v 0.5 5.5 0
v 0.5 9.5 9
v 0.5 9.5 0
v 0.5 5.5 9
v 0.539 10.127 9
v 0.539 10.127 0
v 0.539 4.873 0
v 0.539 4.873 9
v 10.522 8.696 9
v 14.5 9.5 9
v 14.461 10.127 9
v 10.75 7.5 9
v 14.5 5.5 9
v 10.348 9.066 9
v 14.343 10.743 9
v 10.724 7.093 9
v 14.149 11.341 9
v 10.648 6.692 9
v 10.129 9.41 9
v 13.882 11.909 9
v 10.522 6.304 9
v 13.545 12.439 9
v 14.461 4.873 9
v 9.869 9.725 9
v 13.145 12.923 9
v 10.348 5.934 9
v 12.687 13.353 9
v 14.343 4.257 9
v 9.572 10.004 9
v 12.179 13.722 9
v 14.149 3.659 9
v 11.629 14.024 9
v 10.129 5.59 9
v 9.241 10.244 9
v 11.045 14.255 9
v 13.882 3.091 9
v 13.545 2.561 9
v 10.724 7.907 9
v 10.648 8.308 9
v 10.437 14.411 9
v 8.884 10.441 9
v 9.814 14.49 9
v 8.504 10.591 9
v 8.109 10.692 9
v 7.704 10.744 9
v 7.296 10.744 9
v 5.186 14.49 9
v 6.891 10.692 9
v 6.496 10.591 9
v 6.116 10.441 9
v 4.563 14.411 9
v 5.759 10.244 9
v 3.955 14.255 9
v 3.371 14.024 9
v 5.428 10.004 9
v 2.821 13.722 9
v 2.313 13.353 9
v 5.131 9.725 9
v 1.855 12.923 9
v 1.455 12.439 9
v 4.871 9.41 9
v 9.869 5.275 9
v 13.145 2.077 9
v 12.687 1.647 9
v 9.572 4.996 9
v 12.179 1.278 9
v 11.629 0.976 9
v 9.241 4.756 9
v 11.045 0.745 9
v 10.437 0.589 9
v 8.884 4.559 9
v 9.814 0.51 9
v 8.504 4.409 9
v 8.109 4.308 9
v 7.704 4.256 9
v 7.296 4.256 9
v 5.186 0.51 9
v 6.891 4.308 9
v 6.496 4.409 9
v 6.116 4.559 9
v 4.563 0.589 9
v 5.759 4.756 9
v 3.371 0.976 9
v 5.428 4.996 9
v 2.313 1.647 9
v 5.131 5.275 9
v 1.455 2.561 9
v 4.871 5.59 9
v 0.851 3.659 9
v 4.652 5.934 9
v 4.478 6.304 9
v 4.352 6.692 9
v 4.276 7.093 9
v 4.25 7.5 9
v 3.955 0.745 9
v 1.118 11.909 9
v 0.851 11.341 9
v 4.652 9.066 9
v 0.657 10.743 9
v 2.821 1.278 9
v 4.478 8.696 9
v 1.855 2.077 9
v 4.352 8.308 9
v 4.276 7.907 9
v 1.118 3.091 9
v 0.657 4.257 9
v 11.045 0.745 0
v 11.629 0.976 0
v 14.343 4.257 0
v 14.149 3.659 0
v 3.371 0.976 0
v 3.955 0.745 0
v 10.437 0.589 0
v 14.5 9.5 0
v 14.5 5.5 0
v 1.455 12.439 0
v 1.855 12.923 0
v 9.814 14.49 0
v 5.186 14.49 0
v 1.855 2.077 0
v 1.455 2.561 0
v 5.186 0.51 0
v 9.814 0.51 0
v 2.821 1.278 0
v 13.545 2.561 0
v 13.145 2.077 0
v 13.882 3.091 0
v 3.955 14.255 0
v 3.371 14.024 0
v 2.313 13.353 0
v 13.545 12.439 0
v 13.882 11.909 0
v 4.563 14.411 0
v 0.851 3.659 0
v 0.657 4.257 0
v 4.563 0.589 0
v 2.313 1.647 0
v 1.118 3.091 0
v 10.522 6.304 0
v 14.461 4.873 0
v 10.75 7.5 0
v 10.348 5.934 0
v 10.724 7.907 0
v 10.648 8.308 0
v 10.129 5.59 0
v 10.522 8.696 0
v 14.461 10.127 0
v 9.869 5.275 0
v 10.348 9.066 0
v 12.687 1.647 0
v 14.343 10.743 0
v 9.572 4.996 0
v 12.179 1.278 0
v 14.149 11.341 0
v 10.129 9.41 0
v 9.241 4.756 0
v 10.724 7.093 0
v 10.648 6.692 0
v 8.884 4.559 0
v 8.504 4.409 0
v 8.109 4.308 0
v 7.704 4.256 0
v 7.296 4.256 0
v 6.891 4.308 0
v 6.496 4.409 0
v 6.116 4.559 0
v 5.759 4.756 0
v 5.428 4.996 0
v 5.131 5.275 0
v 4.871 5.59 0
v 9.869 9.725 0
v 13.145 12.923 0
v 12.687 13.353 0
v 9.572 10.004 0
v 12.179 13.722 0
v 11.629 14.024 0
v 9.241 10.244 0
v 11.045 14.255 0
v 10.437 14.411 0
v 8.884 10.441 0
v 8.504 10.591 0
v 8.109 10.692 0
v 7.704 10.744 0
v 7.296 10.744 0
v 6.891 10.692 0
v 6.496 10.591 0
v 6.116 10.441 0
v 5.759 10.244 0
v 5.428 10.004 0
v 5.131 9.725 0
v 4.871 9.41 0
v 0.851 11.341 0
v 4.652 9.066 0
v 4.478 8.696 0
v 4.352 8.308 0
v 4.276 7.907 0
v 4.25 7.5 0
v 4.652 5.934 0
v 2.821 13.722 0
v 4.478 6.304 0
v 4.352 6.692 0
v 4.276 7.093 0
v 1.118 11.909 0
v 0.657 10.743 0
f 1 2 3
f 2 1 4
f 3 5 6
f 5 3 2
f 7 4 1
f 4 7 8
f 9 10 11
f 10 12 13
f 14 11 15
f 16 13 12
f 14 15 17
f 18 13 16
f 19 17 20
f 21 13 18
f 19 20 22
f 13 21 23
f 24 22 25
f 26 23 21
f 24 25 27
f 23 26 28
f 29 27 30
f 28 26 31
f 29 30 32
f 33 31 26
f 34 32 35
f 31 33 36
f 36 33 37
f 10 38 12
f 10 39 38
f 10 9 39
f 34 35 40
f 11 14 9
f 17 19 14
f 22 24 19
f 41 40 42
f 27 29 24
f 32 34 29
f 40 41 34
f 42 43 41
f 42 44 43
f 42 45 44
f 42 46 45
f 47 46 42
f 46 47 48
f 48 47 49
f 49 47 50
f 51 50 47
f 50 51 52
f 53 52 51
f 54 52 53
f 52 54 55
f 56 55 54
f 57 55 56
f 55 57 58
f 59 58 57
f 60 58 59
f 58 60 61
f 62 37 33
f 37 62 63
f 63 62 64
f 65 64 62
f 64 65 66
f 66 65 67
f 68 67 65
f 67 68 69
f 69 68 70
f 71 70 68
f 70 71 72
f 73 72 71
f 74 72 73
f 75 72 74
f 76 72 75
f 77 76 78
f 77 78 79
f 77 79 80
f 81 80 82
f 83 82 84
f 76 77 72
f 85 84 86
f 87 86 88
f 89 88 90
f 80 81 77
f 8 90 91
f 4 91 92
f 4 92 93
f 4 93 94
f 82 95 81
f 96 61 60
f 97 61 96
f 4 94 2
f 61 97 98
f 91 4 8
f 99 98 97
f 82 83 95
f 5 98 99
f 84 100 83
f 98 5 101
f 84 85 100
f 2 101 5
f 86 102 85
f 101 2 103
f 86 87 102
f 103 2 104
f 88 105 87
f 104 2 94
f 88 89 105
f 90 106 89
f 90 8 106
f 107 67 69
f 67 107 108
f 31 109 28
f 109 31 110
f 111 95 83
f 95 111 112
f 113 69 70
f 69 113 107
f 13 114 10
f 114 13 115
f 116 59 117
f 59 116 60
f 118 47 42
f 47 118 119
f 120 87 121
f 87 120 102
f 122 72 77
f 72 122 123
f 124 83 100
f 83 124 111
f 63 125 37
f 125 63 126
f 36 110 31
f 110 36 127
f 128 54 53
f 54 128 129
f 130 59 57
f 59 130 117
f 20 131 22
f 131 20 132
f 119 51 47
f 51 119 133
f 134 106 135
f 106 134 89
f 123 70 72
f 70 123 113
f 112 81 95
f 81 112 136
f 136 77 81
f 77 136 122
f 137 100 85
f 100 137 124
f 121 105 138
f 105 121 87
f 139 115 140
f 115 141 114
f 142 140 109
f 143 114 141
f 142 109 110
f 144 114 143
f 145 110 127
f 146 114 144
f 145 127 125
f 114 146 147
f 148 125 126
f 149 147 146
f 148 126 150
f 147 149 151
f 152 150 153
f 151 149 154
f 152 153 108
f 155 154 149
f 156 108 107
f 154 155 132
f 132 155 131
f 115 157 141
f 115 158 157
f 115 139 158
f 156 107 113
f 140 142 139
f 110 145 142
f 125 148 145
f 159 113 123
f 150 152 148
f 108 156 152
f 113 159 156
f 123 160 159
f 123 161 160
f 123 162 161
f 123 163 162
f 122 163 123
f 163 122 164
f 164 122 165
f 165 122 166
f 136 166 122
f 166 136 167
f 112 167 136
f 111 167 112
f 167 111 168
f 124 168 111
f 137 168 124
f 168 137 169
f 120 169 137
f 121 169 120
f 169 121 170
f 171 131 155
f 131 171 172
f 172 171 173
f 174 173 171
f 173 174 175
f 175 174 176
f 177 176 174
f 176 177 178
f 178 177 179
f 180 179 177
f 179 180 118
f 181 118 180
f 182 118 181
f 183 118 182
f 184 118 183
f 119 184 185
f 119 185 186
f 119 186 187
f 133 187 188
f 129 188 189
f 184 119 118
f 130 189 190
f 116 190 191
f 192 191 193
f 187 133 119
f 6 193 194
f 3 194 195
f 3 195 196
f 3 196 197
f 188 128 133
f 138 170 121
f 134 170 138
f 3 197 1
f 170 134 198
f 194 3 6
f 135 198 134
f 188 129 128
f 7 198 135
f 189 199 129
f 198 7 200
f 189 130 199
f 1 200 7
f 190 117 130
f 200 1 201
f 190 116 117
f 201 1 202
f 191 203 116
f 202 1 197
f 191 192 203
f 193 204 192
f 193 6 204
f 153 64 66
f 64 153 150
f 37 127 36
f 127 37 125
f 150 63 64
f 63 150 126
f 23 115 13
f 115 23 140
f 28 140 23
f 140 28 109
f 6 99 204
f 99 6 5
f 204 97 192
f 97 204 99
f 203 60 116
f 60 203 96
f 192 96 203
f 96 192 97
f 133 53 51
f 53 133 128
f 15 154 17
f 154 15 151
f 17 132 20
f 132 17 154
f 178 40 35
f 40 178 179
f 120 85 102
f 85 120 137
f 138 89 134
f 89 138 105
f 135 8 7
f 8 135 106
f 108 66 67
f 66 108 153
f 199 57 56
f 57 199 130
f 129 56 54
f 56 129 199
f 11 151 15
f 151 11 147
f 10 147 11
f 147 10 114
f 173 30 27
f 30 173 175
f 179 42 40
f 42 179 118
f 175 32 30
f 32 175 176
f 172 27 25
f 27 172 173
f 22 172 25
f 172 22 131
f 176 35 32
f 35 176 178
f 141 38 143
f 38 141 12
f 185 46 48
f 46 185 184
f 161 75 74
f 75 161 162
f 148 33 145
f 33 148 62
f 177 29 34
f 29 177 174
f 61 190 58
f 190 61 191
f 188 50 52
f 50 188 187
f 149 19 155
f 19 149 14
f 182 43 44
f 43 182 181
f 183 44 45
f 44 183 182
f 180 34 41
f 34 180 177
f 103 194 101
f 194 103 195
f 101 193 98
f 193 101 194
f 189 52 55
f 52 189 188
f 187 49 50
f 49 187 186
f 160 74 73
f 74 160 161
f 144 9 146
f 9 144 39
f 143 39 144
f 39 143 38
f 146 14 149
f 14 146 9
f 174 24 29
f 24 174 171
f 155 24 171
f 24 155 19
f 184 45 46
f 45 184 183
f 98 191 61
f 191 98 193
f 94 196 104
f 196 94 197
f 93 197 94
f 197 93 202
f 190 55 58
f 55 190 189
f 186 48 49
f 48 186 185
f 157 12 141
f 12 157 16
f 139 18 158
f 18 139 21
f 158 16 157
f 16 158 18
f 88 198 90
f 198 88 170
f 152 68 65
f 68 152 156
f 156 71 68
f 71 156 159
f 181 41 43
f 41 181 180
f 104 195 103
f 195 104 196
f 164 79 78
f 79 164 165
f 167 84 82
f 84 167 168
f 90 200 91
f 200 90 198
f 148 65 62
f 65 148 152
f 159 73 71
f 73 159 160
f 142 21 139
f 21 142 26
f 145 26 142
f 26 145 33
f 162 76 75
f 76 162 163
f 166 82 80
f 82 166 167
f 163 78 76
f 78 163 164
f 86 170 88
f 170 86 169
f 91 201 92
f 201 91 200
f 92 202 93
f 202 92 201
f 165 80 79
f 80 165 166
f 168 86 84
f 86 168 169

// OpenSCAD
// Generated by SolidPython 1.1.3 on 2023-01-30 14:07:01
$fn = 50;


difference() {
	union() {
		translate(v = [7.5000000000, 7.5000000000, 0]) {
			rotate(a = [0, 0, 0]) {
				hull() {
					translate(v = [-2.0000000000, 2.0000000000, 0]) {
						rotate(a = [0, 0, 0]) {
							translate(v = [0, 0, 0]) {
								rotate(a = [0, 0, 0]) {
									cylinder(h = 9, r = 5);
								}
							}
						}
					}
					translate(v = [2.0000000000, 2.0000000000, 0]) {
						rotate(a = [0, 0, 0]) {
							translate(v = [0, 0, 0]) {
								rotate(a = [0, 0, 0]) {
									cylinder(h = 9, r = 5);
								}
							}
						}
					}
					translate(v = [-2.0000000000, -2.0000000000, 0]) {
						rotate(a = [0, 0, 0]) {
							translate(v = [0, 0, 0]) {
								rotate(a = [0, 0, 0]) {
									cylinder(h = 9, r = 5);
								}
							}
						}
					}
					translate(v = [2.0000000000, -2.0000000000, 0]) {
						rotate(a = [0, 0, 0]) {
							translate(v = [0, 0, 0]) {
								rotate(a = [0, 0, 0]) {
									cylinder(h = 9, r = 5);
								}
							}
						}
					}
				}
			}
		}
	}
	union() {
		translate(v = [7.5000000000, 7.5000000000, 0]) {
			rotate(a = [0, 0, 0]) {
				translate(v = [0, 0, -50]) {
					rotate(a = [0, 0, 0]) {
						cylinder(h = 100, r = 3.2500000000);
					}
				}
			}
		}
	}
}
/***********************************************
*********      SolidPython code:      **********
************************************************
 
from solid import *
import os
import subprocess

import oomB

import opsc_library_gen

mode = "laser"
#mode = "3d_print"

defined_objects = {}

radius_dict = {}
countersunk_dict = {}


def set_mode(m):
    global mode
    mode = m
    radius_dict['M6'] = 6.5/2
    radius_dict['M3'] = 3.3/2
    if mode == "laser":
        radius_dict['M6'] = 6/2
        radius_dict['M3'] = 3/2

    countersunk_dict['M3'] = {}
    countersunk_dict['M3']['little_rad'] = radius_dict['M3']
    countersunk_dict['M3']['big_rad'] = (5.5+0.6)/2
    if mode == "laser":
        countersunk_dict['M3']['big_rad'] = (4.75+0.6)/2
        countersunk_dict['M3']['little_rad'] = (4.75+0.6)/2

    countersunk_dict['M3']['height'] = 1.7


def opsc_make_object(filename, objects, save_type="none",resolution=50, layers = 1, tilediff = 200, mode="laser"):
    set_mode(mode)
    save_type = save_type.lower()
    os.makedirs(os.path.dirname(filename), exist_ok=True)
    final_object = opsc_get_object(objects)
    # Save the final object to the specified filename    
    scad_render_to_file(final_object, filename, file_header='$fn = %s;' % resolution, include_orig_code=True)
    if mode == "laser":
        filename_laser = filename.replace(".scad","-flat.scad")
        scad_render_to_file(getLaser(final_object, layers=layers, tilediff=tilediff), filename_laser, file_header='$fn = %s;' % resolution, include_orig_code=True)
        if save_type == "all":
            saveToAll(filename_laser)
        elif save_type == "dxf":
            saveToDxf(filename_laser)
    if save_type == "all":
        saveToAll(filename)
    elif save_type == "dxf":
        saveToDxf(filename)


def opsc_get_object(objects):
    # Create the solidpython objects
    positive_objects = [get_opsc_item(obj) for obj in objects if obj['type'] == 'positive']
    negative_objects = [get_opsc_item(obj) for obj in objects if obj['type'] == 'negative']
    # Union the positive objects
    positive_object = union()(*positive_objects)
    # Union the negative objects
    negative_object = union()(*negative_objects)
    # Create the final object by subtracting the negative objects from the positive objects
    return difference()(positive_object, negative_object)

def get_opsc_item(params):
    # A dictionary to map radius string values to numerical values
    #radius_dict = {'small': 5, 'medium': 10, 'large': 15}
    # An array of function names for basic shapes
    basic_shapes = ['cube', 'sphere', 'cylinder']
    
    # An array of function names for other shapes
    other_shapes = ['hole', 'slot', 'rounded_rectangle', 'countersunk']
    


    # Convert radius to r if present, and remove radius from the params dictionary
    if 'radius' in params:
        if isinstance(params['radius'], str):
            # Use the radius_dict to map the radius string value to a numerical value
            params['r'] = radius_dict[params['radius']]
        else:
            params['r'] = params['radius']
        del params['radius']
    

    # Check if the object type is a basic shape
    if params['shape'] in basic_shapes:
        # Remove shape and unexpected dictionary values
        allowed_keys = {'size', 'r', 'r1', 'r2', 'd', 'h', 'rw', 'rh', 'dw', 'dh'}
        shape_params = {k: v for k, v in params.items() if k in allowed_keys}

        # Call the corresponding function for the shape parameter, using ** notation to pass the shape_params dictionary as keyword arguments
        return get_opsc_transform(params,globals()[params['shape']](**shape_params))
    
    # If the object type is not a basic shape, check if it's a defined object or one of the other shapes
    elif params['shape'] in other_shapes:
        # Call the corresponding function for the shape parameter, passing the params dictionary as an argument
        p2 = copy.deepcopy(params)
        p2["pos"] = [0,0,0]
        return get_opsc_transform(params,globals()[params['shape']](p2))
    
    # If the object is not a basic shape or a defined object, try to import it from a .scad file
    else:
        obj = defined_objects[params['shape']]
        return get_opsc_transform(params,obj)

def get_opsc_transform(params, solid_obj):
    # Rotate the object based on the 'rot' field in the params dictionary, or the 'rotX', 'rotY', and 'rotZ' fields if 'rot' is not present
    rot = params.get('rot', [])
    if rot:
        rotX, rotY, rotZ = rot
    else:
        rotX = params.get('rotX', 0)
        rotY = params.get('rotY', 0)
        rotZ = params.get('rotZ', 0)
    solid_obj = rotate([rotX, rotY, rotZ])(solid_obj)

    # Translate the object based on the 'pos' field in the params dictionary, or the 'x', 'y', and 'z' fields if 'pos' is not present
    pos = params.get('pos', [])
    if pos:
        x, y, z = pos
    else:
        x = params.get('x', 0)
        y = params.get('y', 0)
        z = params.get('z', 0)
    solid_obj = translate([x, y, z])(solid_obj)
    return solid_obj


import random

def opsc_easy_array(type, shape, repeats, pos_start, shift_arr, **kwargs):
    for i in range(0,3):
        repeats.append(1)
        pos_start.append(0)
        shift_arr.append(0)
    return_objects = []

    for x in range(0,repeats[0]):
        for y in range(0,repeats[1]):
            for z in range(0,repeats[2]):
                return_objects.append(opsc_easy(type, shape, pos=[pos_start[0]+x*shift_arr[0],pos_start[1]+y*shift_arr[1],pos_start[2]+z*shift_arr[2]], **kwargs))
    return return_objects                



def opsc_easy(type, shape, **kwargs):
    obj = {
        'type': type,
        'shape': shape
    }
    for param in ['size', 'r', 'r1', 'r2', 'd', 'h', 'rw', 'rh', 'dw', 'dh', 'pos', 'x', 'y', 'z', 'rot', 'rotX', 'rotY', 'rotZ', "w"]:
        if param in kwargs:
            obj[param] = kwargs[param]
    return obj

def hole(params):
    p2 = copy.deepcopy(params)  
    # Check if the radius is a string and replace it with the corresponding value from the dictionary
    if isinstance(p2['r'], str):
        p2['r'] = radius_dict[p2['r']]
    
    # Set the height to 100 if not specified
    if 'h' not in p2:
        p2['h'] = 100
        p2["pos"] = [0,0,-50]
    p2["center"] = True
    # Create the cylinder object
    p2["shape"] = "cylinder"
    p2["type"] = "positive"

    return get_opsc_item(p2)

import copy

def countersunk(params):
    p2 = copy.deepcopy(params)
    counter_rad = p2['r']
    p2['r'] = radius_dict[p2['r']]
    hp = copy.deepcopy(p2)
    hp["type"] = "positive"
    hp["shape"] = "hole"
    del hp["rot"]
    hol = get_opsc_item(hp)
    
    cp = copy.deepcopy(p2)
    cp["h"] = countersunk_dict[counter_rad]["height"]
    cp["r2"] = countersunk_dict[counter_rad]["little_rad"]
    cp["r1"] = countersunk_dict[counter_rad]["big_rad"]
    del cp["r"]
    del cp["rot"]
    cp["type"] = "positive"
    cp["shape"] = "cylinder"
    cp["pos"] = [0,0,0]

    top = get_opsc_item(cp)
    return union()(hol,top)



def slot(params):  
    p2 = copy.deepcopy(params) 
    if isinstance(p2['r'], str):
        p2['r'] = radius_dict[p2['r']]
    p2["type"] = "positive"
    p2["shape"] = "hole"
    del p2["rot"]
    p2["pos"] = [0,0,0]
    left = copy.deepcopy(p2)
    right = copy.deepcopy(p2)
    left["pos"][0] = p2["w"] / 2 - p2["r"] 
    
    right["pos"][0] = -p2["w"] / 2 + p2["r"] 
    pass
    leftObj = get_opsc_item(left)
    rightObj = get_opsc_item(right)
    return hull()(leftObj, rightObj)

def rounded_rectangle(params):   
    p2 = copy.deepcopy(params) 
    p2["h"] = p2["size"][2]
    p2["pos"] = p2.get("pos", [0, 0, 0]) 
    p2["type"] = "positive"
    p2["shape"] = "hole"
    p2["pos"] = [0,0,0]
    
    if 'rot' in p2:
        del p2["rot"]   
    if 'r' not in p2:
        p2["r"] = 5 
    tl = copy.deepcopy(p2)
    tr = copy.deepcopy(p2)
    bl = copy.deepcopy(p2)
    br = copy.deepcopy(p2)
    tl["pos"][0] = -(p2["size"][0] - p2["r"]*2)/2
    tl["pos"][1] = (p2["size"][1] - p2["r"]*2)/2
    tr["pos"][0] = (p2["size"][0] - p2["r"]*2)/2
    tr["pos"][1] = (p2["size"][1] - p2["r"]*2)/2
    bl["pos"][0] = -(p2["size"][0] - p2["r"]*2)/2
    bl["pos"][1] = -(p2["size"][1] - p2["r"]*2)/2
    br["pos"][0] = (p2["size"][0] - p2["r"]*2)/2
    br["pos"][1] = -(p2["size"][1] - p2["r"]*2)/2
    del tl["size"]
    del tr["size"]
    del bl["size"]
    del br["size"]
    tlo = get_opsc_item(tl)
    tro = get_opsc_item(tr)
    blo = get_opsc_item(bl)
    bro = get_opsc_item(br)    
    return hull()(tlo, tro, blo, bro)



def import_scad_object(filename):
    # Import the .scad file and convert it to a solidpython object
    #filename = "parts"
    obj = import_scad(filename)
    return obj.main()
    


import os
import solid as solidpython

# A dictionary to store the defined objects


def load_scad_objects():
    opsc_library_gen.gen_library(defined_objects)

import random

def test(num_objects):
    objects = []
    for i in range(num_objects):
        # Choose a random shape
        #shape = random.choice(['cube', 'sphere', 'cylinder', 'hole', 'slot', "rounded_rectangle"])
        shape = random.choice(["rounded_rectangle"])

        # Choose a random type
        type = random.choice(['positive', 'negative'])
        
        # Create an empty object dictionary
        obj = {'shape': shape, 'type': type}
        
        # Set shape-specific parameters
        if obj['shape'] in ['cube']:
            obj['size'] =  [random.uniform(5, 15), random.uniform(5, 15), random.uniform(5, 15)]
        if obj['shape'] in ['rounded_rectangle']:
            obj['size'] =  [random.uniform(5, 15), random.uniform(5, 15), random.uniform(5, 15)]
            obj['r'] = random.uniform(0.5, 5)
        elif obj['shape'] == 'sphere':
            obj['r'] = random.uniform(5, 15)
        elif obj['shape'] in ['cylinder', 'hole']:
            obj['r'] = random.uniform(0.5, 5)
            obj['h'] = random.uniform(5, 15)
        elif obj['shape'] == 'slot':
            obj['r'] = random.uniform(0.5, 5)
            obj['h'] = random.uniform(5, 15)
            obj['w'] = random.uniform(5, 15)
        
        # Set a random position and rotation
        obj['pos'] = [random.uniform(-20, 20), random.uniform(-20, 20), random.uniform(-20, 20)]
        obj['rot'] = [random.uniform(-180, 180), random.uniform(-180, 180), random.uniform(-180, 180)]
        
        # Add the object to the list
        objects.append(obj)
    return objects

####### old file saving
def saveToAll(fileIn):
    saveToDxf(fileIn)
    saveToPng(fileIn)
    saveToStl(fileIn)
    saveToSvg(fileIn)

def saveToDxf(fileIn, fileOut="", copy_to_laser=True):
    if fileOut == "":
        fileOut = fileIn.replace(".scad",".dxf")
    saveToFile(fileIn, fileOut)


    
def saveToPng(fileIn, fileOut="",extra="--render"):
    if fileOut == "":
        fileOut = fileIn.replace(".scad",".png")
    saveToFile(fileIn, fileOut)

def saveToStl(fileIn, fileOut=""):
    if fileOut == "":
        fileOut = fileIn.replace(".scad",".stl")
    saveToFile(fileIn, fileOut)
    
def saveToSvg(fileIn, fileOut=""):
    if fileOut == "":
        fileOut = fileIn.replace(".scad",".svg")
    saveToFile(fileIn, fileOut)

def saveToFile(fileIn, fileOut,extra=""):
    #extra = extra + " --colorscheme Tomorrow"

    launchStr = 'openscad -o "' + fileOut + '"' + extra + ' "' + fileIn + '"'
    if ".png" in fileOut:
        launchStr = launchStr + " --render"
    print("            saveToFile launch string: " + launchStr)
    subprocess.run(launchStr)
    x=0

def getLaser(final_object,start=1.5,layers=1,thickness=3,tilediff=200):
        rv= []

        for x in range(layers):
            rv.append(translate([0,x*tilediff,0])(
                    projection()(
                        intersection()(translate([-500,-500,start+x*thickness])(cube(size=[1000,1000,0.1])),
                            final_object
                        )
                    )
            )
            )
            
        return union()(rv)

set_mode("laser")
load_scad_objects() 
 
************************************************/
